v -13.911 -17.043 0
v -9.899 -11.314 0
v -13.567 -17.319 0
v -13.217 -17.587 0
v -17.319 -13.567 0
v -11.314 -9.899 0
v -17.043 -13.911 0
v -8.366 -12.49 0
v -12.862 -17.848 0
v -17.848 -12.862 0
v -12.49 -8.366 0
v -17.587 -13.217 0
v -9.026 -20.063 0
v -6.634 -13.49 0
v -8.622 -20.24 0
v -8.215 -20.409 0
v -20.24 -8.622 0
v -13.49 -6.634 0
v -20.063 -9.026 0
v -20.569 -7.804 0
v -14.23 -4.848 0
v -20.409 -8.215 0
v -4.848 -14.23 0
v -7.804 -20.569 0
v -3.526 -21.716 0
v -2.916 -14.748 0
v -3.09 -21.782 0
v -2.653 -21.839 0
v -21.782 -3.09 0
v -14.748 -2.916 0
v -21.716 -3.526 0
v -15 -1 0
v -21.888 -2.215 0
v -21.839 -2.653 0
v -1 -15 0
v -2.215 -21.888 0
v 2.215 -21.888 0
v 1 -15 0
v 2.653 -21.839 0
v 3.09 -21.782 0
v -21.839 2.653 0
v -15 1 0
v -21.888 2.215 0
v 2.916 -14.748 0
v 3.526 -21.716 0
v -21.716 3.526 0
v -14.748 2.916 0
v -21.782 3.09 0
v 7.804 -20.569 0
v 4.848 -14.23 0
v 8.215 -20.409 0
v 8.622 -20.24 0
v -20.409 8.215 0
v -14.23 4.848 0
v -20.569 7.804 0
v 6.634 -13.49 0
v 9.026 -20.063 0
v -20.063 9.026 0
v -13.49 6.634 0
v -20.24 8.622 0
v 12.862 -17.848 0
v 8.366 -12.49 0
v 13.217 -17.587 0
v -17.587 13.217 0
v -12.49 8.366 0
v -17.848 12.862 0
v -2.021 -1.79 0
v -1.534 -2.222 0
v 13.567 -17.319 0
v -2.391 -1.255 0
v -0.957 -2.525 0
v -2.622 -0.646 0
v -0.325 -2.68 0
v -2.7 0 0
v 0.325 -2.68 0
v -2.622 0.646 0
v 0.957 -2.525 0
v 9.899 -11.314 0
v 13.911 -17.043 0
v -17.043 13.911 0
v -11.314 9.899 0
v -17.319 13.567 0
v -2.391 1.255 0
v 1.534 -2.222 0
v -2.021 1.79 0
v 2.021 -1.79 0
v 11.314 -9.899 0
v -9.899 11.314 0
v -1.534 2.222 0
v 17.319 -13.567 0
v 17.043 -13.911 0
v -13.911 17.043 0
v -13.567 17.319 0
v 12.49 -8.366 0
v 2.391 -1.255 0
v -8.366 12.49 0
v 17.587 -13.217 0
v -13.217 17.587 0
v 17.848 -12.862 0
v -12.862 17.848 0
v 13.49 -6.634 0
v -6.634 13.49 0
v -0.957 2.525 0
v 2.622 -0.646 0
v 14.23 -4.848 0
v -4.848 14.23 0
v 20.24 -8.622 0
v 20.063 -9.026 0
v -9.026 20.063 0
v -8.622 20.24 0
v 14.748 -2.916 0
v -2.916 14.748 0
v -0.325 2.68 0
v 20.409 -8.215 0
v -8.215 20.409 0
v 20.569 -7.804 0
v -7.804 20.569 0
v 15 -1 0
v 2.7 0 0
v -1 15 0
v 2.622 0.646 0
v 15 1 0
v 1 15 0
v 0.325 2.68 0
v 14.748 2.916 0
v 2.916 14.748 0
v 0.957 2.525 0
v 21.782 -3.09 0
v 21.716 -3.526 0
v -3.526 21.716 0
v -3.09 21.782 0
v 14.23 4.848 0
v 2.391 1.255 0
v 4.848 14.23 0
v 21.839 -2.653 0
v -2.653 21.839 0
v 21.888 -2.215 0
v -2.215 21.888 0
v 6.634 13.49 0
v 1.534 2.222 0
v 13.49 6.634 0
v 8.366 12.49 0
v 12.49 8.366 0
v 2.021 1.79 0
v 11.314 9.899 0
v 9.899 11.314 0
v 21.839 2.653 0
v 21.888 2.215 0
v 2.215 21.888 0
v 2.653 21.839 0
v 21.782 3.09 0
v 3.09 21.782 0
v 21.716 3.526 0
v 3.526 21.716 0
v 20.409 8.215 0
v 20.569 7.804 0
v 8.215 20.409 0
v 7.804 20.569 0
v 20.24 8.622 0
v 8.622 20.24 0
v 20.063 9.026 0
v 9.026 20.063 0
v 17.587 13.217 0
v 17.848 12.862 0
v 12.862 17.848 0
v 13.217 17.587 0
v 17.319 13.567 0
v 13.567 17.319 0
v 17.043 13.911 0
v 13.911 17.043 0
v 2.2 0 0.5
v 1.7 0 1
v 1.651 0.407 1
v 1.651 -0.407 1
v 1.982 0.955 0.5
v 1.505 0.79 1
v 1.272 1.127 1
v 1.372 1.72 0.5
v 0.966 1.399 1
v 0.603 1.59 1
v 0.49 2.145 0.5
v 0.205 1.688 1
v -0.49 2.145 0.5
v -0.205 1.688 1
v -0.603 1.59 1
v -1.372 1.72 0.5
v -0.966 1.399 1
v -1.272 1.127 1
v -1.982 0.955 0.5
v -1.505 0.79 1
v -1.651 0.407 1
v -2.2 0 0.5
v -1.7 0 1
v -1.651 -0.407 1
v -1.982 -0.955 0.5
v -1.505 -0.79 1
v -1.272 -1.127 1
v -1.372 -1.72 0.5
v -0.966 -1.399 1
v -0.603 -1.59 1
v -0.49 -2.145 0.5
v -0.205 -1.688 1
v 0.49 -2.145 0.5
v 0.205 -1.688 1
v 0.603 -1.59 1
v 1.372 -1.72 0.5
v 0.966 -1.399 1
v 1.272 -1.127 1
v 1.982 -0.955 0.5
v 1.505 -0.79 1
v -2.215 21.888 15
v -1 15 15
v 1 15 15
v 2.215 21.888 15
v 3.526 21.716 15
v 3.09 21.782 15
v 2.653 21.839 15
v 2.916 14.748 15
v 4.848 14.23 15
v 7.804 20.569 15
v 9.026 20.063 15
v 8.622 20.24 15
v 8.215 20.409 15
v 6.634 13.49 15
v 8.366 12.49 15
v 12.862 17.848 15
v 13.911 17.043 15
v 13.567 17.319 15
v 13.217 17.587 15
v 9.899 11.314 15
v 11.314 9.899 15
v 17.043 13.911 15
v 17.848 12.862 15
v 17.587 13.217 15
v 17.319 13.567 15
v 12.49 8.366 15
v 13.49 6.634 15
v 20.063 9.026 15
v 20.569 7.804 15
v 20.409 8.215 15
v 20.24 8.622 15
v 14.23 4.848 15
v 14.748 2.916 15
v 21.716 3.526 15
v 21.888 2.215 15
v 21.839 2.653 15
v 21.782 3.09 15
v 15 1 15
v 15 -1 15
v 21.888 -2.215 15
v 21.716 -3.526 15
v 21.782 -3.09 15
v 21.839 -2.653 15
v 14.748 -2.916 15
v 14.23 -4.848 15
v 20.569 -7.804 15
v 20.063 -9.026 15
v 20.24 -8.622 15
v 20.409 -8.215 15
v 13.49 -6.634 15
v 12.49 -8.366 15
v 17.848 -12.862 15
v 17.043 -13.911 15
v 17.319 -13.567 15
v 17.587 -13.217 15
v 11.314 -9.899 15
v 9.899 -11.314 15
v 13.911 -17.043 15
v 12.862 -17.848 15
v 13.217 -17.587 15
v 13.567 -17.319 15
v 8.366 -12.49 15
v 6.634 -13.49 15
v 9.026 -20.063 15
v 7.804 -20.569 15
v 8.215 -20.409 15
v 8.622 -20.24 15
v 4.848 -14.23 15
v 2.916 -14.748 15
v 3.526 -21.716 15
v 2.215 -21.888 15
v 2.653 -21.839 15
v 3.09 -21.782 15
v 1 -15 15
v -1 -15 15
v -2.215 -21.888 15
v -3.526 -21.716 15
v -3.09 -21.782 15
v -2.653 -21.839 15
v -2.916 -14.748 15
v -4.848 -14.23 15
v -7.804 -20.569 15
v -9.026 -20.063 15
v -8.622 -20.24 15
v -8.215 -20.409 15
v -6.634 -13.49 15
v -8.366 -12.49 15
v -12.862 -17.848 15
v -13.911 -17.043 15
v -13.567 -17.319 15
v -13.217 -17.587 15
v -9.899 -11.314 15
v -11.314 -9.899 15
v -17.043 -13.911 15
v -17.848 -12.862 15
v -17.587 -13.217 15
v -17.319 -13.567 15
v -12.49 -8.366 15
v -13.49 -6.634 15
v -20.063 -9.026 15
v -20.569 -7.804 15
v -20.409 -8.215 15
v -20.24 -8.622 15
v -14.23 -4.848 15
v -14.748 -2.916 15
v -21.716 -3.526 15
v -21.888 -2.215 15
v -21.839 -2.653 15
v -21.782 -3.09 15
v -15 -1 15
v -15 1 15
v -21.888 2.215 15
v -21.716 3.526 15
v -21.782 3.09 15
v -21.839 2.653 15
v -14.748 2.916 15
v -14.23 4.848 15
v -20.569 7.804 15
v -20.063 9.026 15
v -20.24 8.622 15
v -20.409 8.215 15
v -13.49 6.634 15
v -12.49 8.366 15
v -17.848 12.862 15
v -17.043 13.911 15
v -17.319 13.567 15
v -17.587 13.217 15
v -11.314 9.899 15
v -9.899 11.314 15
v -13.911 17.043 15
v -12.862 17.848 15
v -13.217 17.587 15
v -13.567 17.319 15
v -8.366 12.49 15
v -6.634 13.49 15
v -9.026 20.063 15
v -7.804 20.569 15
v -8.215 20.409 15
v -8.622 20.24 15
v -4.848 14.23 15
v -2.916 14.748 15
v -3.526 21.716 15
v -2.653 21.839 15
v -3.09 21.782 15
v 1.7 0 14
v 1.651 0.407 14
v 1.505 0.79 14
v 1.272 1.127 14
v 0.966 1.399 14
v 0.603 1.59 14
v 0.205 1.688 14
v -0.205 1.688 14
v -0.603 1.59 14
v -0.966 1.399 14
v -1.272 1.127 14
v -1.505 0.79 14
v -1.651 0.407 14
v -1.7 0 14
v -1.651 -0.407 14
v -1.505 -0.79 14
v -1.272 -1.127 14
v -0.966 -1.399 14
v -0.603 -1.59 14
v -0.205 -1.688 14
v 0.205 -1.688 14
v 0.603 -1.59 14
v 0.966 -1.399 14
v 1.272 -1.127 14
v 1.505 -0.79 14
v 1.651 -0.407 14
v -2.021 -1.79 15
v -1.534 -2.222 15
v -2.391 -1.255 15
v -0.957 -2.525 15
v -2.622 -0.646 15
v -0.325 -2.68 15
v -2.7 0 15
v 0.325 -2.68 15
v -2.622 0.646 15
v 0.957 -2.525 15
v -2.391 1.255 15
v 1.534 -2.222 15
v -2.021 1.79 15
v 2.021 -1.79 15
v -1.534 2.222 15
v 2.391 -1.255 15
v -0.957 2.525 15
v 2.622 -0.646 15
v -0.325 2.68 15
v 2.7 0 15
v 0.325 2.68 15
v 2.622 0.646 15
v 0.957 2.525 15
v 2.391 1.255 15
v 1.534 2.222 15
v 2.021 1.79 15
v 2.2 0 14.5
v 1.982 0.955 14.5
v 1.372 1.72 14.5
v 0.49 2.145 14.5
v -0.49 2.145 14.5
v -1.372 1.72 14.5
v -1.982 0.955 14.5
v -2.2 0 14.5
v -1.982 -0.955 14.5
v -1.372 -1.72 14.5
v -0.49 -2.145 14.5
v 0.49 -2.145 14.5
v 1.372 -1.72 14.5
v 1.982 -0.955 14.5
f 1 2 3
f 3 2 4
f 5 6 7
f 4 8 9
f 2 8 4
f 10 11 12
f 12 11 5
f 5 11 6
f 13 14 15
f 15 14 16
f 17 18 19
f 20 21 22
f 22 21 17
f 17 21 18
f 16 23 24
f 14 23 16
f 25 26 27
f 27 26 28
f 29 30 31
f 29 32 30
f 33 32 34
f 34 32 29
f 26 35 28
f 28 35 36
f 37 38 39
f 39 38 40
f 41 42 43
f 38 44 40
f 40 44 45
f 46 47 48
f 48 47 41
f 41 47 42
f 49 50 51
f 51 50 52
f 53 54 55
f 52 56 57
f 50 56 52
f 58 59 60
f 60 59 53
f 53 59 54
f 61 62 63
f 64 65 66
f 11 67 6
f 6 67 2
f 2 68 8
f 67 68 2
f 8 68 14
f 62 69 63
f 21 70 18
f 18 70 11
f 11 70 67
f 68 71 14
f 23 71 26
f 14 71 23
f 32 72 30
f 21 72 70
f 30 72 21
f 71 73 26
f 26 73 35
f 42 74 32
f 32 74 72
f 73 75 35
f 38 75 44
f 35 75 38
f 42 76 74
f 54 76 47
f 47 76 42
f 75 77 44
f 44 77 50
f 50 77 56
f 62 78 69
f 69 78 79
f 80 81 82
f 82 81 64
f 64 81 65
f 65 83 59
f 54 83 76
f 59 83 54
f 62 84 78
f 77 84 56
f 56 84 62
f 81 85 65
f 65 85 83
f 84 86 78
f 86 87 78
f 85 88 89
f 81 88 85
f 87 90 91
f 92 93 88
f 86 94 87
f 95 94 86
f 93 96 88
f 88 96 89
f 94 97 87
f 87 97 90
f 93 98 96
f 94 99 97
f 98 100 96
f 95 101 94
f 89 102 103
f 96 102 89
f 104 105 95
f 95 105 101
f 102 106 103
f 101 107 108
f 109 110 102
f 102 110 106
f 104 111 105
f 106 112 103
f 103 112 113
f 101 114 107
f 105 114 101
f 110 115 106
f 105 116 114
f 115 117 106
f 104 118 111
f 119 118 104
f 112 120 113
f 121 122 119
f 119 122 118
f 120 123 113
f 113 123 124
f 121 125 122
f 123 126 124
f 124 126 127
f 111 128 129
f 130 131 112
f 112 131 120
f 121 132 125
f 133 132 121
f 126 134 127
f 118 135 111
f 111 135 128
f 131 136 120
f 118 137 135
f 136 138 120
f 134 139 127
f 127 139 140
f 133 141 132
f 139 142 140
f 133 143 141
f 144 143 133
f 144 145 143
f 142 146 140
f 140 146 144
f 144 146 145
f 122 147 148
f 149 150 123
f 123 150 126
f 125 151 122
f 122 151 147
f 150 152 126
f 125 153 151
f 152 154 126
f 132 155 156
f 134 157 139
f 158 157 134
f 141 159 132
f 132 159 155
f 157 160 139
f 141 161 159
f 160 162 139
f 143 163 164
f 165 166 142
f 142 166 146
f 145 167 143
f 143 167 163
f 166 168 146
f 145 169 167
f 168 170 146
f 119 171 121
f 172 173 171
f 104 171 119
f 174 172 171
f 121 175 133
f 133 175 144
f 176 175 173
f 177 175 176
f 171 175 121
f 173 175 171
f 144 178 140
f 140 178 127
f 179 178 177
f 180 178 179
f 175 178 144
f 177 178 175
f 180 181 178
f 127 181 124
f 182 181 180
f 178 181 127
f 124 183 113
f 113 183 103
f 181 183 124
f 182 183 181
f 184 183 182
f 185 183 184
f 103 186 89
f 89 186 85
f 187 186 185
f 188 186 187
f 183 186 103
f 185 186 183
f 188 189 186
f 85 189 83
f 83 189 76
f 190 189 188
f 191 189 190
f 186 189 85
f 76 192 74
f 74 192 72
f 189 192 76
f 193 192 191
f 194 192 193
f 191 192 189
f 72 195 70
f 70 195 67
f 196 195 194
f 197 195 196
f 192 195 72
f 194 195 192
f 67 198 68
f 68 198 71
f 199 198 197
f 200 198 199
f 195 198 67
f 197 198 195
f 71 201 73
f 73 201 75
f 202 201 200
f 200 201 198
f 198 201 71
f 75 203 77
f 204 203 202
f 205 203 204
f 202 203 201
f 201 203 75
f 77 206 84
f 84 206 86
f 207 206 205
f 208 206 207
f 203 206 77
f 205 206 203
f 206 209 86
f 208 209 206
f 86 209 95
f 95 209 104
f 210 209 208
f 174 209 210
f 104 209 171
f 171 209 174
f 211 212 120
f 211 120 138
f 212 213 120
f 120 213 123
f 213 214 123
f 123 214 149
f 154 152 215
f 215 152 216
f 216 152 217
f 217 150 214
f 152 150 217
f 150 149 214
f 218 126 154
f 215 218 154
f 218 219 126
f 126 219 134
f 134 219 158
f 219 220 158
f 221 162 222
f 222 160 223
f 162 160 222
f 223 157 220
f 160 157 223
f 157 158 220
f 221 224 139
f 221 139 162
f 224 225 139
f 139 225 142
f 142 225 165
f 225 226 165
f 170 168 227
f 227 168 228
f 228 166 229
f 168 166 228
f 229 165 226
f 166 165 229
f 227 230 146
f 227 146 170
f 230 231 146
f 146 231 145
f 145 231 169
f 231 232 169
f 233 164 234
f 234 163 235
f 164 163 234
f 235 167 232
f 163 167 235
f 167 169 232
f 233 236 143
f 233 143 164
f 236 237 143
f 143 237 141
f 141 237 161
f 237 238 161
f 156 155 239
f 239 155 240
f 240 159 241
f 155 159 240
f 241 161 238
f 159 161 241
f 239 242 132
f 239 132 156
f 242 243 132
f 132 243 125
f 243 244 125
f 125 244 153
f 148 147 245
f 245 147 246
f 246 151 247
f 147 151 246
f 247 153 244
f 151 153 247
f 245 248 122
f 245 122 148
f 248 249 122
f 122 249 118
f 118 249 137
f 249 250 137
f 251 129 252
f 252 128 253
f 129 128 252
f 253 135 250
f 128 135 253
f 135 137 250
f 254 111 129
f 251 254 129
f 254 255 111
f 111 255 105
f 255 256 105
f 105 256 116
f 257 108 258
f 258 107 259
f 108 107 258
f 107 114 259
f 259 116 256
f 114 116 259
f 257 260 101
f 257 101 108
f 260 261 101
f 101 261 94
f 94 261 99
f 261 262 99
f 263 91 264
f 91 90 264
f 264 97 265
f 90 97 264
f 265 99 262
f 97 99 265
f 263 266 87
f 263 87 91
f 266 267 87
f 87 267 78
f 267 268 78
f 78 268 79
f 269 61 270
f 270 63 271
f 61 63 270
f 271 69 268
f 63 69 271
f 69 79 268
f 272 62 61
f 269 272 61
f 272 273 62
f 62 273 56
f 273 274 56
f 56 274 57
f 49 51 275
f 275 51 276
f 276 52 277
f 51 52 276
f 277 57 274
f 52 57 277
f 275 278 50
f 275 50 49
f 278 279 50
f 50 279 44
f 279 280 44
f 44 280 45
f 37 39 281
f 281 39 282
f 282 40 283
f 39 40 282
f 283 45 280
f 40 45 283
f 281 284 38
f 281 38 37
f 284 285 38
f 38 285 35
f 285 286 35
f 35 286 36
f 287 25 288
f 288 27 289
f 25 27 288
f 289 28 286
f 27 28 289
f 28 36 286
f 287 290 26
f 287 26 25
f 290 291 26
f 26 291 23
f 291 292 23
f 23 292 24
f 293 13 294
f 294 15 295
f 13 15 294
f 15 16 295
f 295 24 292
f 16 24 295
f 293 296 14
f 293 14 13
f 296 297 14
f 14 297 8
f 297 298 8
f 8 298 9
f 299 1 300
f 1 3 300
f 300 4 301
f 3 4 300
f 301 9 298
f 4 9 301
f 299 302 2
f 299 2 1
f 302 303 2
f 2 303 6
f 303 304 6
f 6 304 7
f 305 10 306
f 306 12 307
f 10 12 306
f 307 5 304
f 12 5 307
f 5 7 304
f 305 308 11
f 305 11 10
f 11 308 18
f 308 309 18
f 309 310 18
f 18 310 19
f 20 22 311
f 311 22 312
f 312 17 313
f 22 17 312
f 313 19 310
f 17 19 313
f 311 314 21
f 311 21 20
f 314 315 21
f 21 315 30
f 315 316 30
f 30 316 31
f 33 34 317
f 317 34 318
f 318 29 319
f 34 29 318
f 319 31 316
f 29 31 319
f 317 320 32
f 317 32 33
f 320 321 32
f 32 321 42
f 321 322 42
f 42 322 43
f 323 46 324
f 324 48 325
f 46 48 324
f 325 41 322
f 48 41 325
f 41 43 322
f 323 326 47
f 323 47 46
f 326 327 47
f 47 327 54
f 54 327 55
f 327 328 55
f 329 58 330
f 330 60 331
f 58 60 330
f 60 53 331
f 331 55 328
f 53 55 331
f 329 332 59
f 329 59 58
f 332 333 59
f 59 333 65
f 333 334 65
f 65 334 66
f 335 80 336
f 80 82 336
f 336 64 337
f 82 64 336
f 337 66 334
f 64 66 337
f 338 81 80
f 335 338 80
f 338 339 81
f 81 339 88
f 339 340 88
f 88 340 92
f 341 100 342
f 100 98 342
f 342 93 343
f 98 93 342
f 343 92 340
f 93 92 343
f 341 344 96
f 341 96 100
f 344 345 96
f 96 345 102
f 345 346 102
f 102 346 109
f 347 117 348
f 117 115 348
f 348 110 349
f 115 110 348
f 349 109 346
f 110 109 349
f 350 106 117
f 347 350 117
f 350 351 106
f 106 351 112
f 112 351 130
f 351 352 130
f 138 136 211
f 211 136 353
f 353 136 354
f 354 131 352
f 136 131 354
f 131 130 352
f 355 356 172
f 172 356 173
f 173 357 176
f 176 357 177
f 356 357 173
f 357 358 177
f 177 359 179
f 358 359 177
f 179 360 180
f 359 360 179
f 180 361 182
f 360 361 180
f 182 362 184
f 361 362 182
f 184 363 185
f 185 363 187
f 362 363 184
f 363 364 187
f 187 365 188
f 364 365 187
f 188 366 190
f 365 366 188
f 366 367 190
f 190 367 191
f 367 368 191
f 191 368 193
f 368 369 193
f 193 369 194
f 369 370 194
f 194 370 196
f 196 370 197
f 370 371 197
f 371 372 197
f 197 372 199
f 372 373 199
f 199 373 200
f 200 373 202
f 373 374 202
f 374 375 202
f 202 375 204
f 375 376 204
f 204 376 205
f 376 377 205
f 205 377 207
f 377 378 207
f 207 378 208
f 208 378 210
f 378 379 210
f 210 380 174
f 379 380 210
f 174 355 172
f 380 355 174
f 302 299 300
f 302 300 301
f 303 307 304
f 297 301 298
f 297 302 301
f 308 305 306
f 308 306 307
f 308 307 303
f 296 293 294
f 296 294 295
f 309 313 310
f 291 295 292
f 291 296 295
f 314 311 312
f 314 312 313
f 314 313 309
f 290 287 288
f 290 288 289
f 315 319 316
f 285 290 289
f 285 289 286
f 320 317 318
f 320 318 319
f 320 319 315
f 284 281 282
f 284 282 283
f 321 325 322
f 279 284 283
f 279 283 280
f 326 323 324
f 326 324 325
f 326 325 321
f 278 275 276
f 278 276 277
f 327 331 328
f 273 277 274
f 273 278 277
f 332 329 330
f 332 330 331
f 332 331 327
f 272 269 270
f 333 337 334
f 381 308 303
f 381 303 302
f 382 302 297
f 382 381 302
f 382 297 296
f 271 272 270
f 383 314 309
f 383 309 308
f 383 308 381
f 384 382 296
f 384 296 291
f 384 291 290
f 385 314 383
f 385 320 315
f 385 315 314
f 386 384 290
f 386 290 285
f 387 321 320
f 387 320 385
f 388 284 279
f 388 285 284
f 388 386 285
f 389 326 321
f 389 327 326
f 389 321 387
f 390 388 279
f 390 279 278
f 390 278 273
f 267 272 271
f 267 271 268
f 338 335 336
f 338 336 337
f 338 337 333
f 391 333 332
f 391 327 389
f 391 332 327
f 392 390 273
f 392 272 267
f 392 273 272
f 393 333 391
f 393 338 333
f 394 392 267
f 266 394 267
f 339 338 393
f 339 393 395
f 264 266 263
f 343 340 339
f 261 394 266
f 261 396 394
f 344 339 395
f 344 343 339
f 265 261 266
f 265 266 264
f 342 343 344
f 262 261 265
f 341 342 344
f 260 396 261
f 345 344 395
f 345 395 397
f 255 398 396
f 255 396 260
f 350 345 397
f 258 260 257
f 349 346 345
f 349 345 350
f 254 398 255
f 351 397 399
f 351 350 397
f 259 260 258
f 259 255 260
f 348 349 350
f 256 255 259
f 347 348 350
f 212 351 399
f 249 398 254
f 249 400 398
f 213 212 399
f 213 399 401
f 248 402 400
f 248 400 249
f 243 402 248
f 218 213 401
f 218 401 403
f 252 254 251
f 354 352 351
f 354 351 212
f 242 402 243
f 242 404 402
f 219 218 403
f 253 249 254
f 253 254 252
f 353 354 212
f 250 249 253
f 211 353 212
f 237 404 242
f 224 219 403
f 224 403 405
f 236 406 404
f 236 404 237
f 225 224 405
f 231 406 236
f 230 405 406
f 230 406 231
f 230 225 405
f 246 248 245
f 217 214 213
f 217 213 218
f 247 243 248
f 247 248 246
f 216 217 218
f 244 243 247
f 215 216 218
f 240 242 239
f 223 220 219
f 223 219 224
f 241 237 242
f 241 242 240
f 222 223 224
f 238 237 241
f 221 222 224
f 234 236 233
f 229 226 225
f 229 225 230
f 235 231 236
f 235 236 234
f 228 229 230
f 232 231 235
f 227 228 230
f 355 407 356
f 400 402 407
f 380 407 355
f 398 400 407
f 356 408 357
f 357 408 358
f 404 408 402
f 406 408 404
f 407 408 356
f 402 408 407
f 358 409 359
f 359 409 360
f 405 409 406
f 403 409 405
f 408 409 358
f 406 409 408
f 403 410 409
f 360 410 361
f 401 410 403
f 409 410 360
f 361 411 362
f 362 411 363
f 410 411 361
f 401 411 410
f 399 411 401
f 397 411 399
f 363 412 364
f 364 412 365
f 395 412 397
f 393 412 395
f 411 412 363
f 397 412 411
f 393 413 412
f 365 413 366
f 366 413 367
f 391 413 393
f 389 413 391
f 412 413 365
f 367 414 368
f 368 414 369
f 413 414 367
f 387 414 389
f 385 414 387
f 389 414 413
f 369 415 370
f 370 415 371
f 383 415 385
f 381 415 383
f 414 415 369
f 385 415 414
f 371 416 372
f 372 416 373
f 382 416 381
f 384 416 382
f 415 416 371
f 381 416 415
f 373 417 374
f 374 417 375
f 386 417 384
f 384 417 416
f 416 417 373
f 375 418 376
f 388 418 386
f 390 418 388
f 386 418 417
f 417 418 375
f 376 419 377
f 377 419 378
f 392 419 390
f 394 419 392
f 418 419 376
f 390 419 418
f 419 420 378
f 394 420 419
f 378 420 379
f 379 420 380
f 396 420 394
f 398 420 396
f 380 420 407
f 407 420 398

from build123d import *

# Parameters (mm, degrees)
SKETCH_R           = 22
PAD_DEPTH          = 15
SKETCH001_R        = 1.7
POCKET_DEPTH       = 15.001
POCKET001_DEPTH    = 143.016624
POLARPATTERN_COUNT = 24
CHAMFER_SIZE       = 1


with BuildPart() as part:
    # Sketch → Pad (new body)
    with BuildSketch(Plane.XY):
        Circle(SKETCH_R)
    extrude(amount=PAD_DEPTH)

    # Sketch001 (on Face3 of Pad) → Pocket (cut, through all)
    with BuildSketch(Plane.XY.offset(15)):
        Circle(SKETCH001_R)
    extrude(amount=-POCKET_DEPTH, mode=Mode.SUBTRACT)

    # Sketch002 (on Face3 of Pocket) → Pocket001 (cut, through all)
    with BuildSketch(Plane.XY.offset(15)):
        Polygon((-1, 15), (1, 15), (4.820269, 36.665769), (-4.820254, 36.665772), align=None)
    pocket001 = extrude(amount=-POCKET001_DEPTH, mode=Mode.SUBTRACT)

    # PolarPattern: Pocket001 ×24 about axis
    polarpattern_axis = Axis((0, 0, 0), (0, 0, 1))
    for i in range(1, POLARPATTERN_COUNT):
        add(pocket001.rotate(polarpattern_axis, i * 360 / POLARPATTERN_COUNT), mode=Mode.SUBTRACT)

    # Chamfer
    chamfer_edges = [part.edges().sort_by_distance(p)[0] for p in [
        (-1.7, 0, 15),
        (-1.7, 0, 0),
    ]]
    chamfer(chamfer_edges, length=CHAMFER_SIZE)


solid = part.part
